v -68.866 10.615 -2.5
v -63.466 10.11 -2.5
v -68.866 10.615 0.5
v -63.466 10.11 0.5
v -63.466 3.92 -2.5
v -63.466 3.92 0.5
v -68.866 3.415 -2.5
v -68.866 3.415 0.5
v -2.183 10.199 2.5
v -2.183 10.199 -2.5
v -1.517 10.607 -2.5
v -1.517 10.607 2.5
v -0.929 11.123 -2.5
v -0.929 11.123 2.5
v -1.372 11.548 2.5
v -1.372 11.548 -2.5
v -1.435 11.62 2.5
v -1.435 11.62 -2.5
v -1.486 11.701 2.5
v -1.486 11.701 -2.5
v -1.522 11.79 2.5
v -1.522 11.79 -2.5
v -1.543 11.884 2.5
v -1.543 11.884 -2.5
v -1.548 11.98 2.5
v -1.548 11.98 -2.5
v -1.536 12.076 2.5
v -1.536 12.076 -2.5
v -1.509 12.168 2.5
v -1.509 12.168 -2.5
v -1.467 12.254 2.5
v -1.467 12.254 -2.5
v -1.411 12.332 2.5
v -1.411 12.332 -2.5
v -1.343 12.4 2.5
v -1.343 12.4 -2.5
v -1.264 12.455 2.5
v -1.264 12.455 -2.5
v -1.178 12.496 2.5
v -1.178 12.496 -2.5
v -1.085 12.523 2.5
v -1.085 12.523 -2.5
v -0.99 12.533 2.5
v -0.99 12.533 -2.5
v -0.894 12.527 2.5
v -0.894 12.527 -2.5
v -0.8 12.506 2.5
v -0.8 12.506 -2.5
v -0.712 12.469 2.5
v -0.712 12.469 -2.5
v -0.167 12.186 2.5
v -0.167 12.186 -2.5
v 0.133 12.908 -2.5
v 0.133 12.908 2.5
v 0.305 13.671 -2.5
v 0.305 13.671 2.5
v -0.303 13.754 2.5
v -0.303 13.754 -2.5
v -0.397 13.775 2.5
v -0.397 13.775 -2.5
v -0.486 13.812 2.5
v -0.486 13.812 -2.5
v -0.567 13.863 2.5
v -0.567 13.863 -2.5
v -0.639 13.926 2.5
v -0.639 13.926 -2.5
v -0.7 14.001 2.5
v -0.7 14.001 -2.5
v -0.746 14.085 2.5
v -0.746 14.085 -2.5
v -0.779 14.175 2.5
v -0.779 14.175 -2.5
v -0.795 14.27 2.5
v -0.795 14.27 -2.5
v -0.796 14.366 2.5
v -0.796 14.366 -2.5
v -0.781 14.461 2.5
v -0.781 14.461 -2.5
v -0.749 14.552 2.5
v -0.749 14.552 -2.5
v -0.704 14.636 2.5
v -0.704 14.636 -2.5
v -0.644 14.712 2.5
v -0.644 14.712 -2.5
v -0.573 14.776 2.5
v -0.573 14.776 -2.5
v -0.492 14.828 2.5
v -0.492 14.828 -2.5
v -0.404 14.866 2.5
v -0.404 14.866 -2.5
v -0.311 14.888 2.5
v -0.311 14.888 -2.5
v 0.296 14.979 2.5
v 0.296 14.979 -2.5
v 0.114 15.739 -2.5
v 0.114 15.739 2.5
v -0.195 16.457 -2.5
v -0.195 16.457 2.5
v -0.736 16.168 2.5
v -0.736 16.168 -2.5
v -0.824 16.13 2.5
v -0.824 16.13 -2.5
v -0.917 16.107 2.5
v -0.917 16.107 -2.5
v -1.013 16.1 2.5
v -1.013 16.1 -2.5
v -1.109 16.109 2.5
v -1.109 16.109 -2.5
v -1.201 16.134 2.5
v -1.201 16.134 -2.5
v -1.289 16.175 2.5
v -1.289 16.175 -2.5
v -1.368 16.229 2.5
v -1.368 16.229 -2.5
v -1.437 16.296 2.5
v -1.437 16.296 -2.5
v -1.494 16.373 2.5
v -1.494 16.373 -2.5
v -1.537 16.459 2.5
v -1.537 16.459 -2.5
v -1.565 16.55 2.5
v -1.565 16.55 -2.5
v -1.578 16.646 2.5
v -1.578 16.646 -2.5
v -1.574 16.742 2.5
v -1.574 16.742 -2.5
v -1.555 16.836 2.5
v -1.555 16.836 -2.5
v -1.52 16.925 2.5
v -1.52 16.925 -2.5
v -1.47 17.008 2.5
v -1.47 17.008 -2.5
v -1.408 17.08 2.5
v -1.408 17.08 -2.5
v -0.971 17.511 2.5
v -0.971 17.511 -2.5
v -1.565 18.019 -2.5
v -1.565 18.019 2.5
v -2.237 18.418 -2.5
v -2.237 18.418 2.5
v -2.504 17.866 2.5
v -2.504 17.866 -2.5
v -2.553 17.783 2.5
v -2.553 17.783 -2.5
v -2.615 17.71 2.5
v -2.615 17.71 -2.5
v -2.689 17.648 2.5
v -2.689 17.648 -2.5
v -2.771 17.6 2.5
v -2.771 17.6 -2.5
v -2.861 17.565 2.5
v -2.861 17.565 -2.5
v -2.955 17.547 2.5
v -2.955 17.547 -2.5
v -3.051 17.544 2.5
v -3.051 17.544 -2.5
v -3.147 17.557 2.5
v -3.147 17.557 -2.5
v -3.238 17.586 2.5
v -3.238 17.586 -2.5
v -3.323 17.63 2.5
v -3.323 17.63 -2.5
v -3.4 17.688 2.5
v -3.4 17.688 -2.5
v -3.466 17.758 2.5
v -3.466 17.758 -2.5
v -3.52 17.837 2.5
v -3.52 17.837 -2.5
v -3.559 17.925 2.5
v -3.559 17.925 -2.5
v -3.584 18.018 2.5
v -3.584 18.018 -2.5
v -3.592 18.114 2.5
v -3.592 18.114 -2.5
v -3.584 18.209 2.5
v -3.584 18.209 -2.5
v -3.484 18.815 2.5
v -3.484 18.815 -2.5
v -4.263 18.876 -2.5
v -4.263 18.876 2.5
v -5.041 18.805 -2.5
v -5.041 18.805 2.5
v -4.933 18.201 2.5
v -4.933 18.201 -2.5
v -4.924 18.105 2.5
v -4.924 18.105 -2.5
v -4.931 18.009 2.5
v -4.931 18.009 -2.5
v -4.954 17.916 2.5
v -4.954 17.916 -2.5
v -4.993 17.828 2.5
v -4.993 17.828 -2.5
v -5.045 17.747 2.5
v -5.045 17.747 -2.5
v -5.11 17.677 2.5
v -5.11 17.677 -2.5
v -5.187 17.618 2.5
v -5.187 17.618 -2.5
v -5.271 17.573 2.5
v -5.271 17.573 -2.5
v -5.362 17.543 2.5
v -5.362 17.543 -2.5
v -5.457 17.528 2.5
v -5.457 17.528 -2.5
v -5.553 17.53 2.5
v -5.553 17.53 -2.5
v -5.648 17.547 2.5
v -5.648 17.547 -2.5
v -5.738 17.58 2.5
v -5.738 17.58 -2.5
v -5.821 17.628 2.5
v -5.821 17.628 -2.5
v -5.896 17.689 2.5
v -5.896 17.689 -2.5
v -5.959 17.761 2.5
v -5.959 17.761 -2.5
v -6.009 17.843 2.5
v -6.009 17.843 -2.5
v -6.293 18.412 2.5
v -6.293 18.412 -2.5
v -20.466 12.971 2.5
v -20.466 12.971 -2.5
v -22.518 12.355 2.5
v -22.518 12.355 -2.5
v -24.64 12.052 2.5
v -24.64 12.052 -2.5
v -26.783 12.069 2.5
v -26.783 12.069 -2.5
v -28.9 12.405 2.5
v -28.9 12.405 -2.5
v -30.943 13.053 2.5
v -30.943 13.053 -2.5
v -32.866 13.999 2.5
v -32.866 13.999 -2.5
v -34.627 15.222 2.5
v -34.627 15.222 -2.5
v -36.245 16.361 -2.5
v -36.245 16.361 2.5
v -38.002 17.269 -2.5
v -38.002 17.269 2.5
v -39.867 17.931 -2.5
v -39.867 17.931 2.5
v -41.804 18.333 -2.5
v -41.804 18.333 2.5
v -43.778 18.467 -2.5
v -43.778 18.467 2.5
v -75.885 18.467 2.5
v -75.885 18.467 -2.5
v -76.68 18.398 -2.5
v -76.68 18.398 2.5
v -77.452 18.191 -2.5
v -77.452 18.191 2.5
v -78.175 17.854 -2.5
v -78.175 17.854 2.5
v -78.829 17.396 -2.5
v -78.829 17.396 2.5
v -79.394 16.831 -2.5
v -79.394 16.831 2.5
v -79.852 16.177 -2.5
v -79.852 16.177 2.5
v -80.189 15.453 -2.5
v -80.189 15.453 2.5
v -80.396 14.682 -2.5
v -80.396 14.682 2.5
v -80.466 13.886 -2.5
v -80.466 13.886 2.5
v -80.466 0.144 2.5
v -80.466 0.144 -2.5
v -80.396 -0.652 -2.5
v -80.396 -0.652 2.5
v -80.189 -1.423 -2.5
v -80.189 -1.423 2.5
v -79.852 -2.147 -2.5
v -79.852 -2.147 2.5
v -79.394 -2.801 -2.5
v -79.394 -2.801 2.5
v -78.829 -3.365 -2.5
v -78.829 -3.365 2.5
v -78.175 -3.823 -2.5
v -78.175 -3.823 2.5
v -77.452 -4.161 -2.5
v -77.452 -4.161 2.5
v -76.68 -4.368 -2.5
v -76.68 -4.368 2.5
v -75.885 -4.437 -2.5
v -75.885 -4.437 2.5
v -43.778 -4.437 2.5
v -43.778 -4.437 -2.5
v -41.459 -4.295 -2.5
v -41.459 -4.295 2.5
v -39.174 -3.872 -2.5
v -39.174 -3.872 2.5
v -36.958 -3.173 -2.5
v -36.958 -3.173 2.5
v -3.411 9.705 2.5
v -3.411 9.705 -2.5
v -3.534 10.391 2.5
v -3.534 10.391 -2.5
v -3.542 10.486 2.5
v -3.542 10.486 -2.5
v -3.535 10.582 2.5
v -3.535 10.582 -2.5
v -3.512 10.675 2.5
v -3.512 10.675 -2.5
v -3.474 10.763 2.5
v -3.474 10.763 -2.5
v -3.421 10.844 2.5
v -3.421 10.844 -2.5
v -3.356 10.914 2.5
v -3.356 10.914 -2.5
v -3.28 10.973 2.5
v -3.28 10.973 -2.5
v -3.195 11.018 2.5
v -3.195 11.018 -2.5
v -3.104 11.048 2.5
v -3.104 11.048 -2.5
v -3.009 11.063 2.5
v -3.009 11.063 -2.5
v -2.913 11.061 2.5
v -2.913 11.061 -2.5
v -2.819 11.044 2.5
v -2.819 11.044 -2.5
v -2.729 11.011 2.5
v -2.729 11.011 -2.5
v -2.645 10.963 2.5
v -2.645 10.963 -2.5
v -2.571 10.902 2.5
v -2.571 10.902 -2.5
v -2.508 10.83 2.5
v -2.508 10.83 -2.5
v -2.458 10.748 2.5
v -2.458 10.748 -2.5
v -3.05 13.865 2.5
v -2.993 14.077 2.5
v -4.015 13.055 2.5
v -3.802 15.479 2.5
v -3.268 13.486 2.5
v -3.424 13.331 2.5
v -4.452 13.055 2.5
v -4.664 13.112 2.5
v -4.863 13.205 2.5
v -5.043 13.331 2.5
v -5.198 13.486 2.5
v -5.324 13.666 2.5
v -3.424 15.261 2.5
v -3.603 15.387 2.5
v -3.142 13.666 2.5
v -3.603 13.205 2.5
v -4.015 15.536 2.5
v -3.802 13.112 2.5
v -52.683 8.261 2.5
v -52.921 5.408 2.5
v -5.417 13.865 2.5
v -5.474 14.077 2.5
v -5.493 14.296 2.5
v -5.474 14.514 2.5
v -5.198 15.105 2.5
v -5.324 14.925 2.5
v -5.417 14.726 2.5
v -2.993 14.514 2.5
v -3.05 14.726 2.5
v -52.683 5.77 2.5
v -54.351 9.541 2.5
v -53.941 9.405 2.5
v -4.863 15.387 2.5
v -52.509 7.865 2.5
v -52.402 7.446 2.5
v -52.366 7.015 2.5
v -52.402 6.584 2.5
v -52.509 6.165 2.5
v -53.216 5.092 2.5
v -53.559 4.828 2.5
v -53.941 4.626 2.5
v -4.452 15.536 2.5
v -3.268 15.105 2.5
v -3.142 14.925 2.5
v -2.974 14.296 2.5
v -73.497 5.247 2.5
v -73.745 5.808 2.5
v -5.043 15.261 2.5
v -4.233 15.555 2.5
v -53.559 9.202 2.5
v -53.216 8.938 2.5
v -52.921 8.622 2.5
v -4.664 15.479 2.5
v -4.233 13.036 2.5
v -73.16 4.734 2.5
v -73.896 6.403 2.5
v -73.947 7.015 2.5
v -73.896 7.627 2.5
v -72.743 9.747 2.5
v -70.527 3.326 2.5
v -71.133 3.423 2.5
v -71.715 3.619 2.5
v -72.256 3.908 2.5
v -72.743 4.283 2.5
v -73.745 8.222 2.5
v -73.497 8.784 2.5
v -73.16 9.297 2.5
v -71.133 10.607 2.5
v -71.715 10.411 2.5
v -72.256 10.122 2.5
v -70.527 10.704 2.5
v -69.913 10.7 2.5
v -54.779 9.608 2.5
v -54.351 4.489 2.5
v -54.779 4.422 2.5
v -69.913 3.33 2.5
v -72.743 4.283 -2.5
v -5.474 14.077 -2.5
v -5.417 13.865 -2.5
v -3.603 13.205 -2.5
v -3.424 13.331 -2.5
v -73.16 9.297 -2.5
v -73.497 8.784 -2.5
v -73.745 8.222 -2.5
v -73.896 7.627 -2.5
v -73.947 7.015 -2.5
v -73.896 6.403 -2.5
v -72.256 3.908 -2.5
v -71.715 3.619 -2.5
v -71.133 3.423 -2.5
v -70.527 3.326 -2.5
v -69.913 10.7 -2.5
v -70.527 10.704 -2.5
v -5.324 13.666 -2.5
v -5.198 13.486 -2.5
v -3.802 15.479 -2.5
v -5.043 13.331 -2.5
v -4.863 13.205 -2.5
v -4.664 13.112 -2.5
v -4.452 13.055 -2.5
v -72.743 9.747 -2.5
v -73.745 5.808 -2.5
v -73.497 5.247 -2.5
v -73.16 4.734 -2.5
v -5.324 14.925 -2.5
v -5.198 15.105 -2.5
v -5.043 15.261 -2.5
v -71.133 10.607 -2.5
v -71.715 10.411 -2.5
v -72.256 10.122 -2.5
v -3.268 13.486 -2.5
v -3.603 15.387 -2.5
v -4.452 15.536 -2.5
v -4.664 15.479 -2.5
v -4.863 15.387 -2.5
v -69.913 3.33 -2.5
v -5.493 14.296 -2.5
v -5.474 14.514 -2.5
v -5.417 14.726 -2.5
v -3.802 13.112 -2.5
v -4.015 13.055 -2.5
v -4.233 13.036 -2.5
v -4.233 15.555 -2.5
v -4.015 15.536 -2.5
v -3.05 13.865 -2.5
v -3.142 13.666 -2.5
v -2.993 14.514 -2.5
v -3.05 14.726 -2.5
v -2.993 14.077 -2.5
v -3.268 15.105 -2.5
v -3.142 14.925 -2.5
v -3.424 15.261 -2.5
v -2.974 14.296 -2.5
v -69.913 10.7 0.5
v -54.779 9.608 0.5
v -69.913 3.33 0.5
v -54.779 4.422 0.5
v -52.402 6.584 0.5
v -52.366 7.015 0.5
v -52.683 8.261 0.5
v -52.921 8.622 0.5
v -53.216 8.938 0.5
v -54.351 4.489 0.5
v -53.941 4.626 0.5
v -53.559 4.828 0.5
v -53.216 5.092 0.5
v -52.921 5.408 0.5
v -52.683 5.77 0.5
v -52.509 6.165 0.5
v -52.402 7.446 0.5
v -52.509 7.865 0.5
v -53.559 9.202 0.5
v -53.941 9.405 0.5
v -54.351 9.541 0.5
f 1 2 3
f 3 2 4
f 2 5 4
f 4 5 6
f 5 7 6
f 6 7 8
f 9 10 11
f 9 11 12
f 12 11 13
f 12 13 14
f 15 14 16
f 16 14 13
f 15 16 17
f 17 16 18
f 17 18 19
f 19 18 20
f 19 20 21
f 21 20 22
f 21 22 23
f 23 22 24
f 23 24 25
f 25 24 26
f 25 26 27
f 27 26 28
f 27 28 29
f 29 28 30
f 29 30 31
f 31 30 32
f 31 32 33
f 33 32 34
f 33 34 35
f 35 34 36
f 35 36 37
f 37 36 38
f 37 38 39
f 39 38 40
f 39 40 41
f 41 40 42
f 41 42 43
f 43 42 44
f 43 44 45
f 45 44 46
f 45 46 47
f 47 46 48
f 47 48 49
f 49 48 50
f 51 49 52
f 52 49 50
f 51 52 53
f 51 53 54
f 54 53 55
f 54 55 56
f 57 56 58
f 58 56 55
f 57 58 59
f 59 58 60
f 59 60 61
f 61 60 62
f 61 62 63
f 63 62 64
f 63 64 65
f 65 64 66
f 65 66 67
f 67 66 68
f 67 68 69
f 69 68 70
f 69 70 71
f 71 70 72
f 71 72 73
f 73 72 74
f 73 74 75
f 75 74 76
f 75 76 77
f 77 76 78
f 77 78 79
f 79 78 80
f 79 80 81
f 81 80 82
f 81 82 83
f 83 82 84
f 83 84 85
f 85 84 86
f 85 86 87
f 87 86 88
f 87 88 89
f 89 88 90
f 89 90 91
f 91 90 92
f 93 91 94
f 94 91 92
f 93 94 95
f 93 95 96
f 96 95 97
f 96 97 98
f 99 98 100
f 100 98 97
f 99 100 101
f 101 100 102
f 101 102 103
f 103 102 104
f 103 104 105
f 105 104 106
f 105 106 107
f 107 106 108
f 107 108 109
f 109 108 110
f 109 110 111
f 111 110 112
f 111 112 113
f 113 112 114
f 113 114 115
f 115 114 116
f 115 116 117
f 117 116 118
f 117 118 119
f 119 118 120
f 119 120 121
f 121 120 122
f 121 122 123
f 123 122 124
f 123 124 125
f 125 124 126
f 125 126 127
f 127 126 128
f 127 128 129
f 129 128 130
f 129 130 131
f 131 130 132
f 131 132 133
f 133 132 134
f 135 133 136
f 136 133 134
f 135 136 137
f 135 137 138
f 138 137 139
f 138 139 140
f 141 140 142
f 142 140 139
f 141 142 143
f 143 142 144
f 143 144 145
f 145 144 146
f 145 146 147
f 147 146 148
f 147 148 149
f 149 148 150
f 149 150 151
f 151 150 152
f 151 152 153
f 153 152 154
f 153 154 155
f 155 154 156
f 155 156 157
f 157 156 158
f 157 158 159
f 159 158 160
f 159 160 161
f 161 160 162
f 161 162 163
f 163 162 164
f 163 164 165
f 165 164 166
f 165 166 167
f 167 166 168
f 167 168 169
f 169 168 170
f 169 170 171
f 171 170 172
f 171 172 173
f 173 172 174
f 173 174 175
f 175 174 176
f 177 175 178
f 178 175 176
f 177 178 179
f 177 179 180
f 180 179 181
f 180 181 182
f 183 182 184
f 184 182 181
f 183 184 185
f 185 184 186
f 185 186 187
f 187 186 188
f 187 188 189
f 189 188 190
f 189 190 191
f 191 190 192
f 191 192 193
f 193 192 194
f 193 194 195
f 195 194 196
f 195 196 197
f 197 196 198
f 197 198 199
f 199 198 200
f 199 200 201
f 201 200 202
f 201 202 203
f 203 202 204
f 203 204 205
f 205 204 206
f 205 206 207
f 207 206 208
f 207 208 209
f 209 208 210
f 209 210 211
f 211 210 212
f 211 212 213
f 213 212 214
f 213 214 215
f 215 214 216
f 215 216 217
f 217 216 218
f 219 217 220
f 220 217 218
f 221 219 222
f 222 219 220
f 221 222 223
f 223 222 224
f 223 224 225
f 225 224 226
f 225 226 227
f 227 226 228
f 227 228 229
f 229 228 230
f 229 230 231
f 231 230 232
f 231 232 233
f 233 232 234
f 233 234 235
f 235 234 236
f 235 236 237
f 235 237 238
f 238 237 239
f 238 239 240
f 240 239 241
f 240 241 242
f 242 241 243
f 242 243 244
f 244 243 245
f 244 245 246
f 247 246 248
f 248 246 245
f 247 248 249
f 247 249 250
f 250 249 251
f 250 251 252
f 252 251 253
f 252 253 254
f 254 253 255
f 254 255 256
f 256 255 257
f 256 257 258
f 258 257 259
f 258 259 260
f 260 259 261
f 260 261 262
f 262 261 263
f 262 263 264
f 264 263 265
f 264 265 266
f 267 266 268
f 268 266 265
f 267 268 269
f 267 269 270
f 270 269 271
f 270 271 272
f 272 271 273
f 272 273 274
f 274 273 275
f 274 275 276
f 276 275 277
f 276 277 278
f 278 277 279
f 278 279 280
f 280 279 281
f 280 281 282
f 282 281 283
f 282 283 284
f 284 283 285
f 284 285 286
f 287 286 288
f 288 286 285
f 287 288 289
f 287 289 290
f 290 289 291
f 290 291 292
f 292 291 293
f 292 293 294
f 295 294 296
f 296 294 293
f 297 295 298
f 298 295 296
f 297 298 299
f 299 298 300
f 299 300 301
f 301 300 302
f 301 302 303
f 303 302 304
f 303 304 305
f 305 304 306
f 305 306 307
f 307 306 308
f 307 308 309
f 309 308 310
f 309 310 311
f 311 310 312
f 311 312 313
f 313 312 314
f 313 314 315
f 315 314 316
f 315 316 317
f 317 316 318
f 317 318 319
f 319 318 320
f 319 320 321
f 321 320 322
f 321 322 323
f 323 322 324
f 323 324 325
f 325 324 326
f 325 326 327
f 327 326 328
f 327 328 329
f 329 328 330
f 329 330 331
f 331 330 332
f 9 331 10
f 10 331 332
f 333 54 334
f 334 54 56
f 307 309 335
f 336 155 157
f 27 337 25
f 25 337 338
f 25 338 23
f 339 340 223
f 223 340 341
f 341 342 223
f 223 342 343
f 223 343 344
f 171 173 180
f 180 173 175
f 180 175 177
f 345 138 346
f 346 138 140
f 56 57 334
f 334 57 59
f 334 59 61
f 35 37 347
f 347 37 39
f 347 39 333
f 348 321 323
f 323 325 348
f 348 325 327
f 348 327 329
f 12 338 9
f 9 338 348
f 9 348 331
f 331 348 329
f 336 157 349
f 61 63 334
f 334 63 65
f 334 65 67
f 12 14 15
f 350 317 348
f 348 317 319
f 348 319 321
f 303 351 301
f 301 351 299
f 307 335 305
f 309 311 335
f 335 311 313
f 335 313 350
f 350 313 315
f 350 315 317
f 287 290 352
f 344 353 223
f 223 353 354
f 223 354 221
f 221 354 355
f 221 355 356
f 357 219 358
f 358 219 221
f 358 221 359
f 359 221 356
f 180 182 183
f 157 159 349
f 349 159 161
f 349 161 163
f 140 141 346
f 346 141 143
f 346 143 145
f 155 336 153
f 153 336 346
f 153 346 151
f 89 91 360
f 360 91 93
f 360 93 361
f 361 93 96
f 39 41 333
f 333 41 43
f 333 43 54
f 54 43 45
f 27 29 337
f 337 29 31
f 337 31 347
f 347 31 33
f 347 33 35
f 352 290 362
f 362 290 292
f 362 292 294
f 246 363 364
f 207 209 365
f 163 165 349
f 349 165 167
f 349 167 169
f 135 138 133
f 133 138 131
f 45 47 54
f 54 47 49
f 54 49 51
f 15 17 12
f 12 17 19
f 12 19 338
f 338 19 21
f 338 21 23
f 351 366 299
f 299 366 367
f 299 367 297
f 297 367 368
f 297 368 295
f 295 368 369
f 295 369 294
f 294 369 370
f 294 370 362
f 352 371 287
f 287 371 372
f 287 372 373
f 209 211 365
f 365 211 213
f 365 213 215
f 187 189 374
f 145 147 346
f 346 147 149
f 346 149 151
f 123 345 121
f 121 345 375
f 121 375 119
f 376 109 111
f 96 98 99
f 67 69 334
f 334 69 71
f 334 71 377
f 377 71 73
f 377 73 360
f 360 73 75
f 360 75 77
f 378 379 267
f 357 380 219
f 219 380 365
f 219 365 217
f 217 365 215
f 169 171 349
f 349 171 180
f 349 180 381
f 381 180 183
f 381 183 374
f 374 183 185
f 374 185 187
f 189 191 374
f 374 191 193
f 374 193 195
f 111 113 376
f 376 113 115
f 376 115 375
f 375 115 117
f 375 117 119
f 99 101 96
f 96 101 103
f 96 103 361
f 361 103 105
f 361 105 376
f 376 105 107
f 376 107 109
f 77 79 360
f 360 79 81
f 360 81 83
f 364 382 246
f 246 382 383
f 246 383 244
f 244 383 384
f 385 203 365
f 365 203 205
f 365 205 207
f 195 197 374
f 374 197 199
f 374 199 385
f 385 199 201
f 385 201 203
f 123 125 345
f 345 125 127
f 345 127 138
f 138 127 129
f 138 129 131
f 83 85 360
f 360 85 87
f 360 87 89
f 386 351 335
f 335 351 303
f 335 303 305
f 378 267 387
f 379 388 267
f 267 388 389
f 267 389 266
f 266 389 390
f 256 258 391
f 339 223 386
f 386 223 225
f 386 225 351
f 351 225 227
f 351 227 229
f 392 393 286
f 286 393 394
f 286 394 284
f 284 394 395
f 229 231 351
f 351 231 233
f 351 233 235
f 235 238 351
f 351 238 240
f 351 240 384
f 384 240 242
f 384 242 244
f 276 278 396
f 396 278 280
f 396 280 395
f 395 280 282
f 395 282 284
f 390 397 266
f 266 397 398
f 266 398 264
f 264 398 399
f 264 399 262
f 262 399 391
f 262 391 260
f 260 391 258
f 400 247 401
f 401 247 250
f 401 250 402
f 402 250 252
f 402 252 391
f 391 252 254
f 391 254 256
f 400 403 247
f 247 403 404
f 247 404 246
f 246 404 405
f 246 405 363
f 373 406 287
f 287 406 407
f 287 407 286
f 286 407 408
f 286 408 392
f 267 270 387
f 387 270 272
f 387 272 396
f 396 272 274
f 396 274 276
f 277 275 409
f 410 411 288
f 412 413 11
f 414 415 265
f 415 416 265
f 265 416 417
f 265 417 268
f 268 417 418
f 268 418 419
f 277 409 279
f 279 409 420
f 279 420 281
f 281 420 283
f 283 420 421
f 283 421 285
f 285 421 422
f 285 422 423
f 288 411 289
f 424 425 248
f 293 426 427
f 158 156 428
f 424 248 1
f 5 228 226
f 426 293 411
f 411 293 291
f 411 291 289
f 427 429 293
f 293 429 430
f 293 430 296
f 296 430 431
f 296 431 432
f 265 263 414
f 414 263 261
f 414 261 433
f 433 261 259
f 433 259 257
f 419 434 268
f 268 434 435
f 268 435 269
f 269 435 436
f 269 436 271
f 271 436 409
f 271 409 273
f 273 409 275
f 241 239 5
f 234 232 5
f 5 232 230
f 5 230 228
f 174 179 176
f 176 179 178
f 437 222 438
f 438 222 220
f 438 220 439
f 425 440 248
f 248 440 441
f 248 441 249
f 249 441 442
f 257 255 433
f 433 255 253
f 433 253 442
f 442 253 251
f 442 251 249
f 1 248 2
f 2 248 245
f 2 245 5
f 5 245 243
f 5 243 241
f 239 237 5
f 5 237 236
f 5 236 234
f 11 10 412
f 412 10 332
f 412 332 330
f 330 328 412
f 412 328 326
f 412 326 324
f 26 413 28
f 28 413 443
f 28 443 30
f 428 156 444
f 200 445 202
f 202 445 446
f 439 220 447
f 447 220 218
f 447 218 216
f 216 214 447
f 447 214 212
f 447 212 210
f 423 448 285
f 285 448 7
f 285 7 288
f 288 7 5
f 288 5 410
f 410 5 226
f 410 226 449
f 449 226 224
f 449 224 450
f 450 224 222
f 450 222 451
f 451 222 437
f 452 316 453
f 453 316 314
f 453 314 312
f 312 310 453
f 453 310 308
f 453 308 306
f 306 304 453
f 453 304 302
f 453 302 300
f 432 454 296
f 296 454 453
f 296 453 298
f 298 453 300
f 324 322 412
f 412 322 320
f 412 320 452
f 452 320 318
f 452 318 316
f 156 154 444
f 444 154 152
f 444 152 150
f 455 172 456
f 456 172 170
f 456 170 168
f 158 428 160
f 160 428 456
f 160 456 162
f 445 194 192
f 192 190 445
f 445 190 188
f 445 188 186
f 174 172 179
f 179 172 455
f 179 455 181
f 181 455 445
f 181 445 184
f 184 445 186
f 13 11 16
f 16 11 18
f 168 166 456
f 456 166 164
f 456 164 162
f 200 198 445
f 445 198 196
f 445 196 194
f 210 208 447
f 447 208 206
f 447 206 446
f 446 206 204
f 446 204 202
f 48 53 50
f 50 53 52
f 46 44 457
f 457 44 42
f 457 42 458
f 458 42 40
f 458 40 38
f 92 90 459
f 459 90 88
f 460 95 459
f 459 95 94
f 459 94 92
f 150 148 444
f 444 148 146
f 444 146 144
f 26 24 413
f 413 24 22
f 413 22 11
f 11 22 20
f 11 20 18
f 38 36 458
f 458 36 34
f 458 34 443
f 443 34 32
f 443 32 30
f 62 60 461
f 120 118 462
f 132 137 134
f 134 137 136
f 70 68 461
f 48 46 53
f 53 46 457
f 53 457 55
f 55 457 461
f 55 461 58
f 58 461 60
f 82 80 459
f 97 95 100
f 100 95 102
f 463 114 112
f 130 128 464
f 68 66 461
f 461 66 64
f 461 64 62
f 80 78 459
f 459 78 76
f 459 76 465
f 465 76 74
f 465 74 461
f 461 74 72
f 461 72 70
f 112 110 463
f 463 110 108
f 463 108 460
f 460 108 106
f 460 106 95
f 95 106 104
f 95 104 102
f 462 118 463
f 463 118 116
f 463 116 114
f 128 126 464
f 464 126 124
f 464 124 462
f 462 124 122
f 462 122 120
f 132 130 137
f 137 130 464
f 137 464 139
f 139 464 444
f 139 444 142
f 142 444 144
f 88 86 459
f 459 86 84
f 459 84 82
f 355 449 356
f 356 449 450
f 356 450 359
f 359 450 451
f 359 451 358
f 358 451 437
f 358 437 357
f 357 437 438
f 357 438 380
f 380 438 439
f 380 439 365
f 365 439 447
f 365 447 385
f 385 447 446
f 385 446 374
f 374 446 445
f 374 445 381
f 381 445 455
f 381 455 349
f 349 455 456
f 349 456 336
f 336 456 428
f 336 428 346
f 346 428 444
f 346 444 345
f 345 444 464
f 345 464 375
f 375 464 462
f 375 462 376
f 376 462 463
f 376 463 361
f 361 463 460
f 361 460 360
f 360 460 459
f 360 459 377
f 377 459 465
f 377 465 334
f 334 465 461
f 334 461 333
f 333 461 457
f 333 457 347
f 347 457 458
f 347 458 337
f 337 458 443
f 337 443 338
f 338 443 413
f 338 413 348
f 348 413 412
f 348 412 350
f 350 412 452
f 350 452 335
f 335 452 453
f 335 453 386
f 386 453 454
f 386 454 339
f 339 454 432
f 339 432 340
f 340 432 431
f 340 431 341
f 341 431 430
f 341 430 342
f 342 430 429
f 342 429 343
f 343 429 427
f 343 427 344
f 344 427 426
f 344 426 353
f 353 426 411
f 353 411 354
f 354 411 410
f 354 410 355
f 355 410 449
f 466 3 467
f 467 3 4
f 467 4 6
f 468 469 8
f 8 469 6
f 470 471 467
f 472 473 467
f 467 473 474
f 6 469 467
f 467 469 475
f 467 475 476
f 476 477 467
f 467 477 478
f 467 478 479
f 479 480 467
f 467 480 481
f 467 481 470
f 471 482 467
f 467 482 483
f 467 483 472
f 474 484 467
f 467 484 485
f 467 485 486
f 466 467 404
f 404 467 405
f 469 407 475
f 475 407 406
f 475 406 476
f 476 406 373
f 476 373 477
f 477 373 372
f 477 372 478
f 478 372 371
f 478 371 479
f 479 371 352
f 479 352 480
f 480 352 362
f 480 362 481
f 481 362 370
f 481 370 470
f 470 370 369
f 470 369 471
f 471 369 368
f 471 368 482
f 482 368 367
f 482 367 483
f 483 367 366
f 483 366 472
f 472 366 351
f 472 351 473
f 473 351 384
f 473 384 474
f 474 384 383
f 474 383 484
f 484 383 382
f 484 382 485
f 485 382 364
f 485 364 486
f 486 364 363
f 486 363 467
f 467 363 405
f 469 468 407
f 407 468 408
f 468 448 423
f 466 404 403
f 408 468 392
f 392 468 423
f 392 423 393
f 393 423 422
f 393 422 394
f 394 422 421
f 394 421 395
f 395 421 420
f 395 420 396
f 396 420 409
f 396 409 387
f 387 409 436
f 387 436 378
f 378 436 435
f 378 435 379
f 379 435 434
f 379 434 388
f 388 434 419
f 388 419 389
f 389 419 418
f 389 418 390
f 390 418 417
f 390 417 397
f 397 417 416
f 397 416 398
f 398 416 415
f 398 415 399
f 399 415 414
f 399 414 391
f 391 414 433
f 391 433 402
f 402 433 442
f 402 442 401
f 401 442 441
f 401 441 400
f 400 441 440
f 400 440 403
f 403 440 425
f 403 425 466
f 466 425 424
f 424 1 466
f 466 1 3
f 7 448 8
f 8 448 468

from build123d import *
from build123d.topology import SkipClean

# Parameters (mm, degrees)
CROQUIS1_R              = 1.717841821
CROQUIS1_R_2            = 1.259750669
CROQUIS1_W              = 27.485469141
CROQUIS1_H              = 14.887962451
SALIENTE_EXTRUIR1_DEPTH = 5
SALIENTE_EXTRUIR2_START = -5
SALIENTE_EXTRUIR2_DEPTH = 5
CORTAR_EXTRUIR1_DEPTH   = 5
CORTAR_EXTRUIR2_DEPTH   = 2
CUT_EXTRUDE2_DEPTH      = 83.704538261


with BuildPart() as part:
    # Croquis1 → Saliente-Extruir1 (new body)
    with BuildSketch(Plane(origin=(0, 0, -2.5), x_dir=(-1, 0, 0), z_dir=(0, 0, -1))):
        with BuildLine():
            Line((2.183126414, 10.199004786), (2.457799007, 10.747834714))
            ThreePointArc((2.457799007, 10.747834714), (3.150356623, 11.03498533), (3.533498829, 10.390552574))
            Line((3.533498829, 10.390552574), (3.410556906, 9.704532228))
            Line((3.410556906, 9.704532228), (36.957948904, -3.17310503))
            ThreePointArc((36.957948904, -3.17310503), (40.309989238, -4.118478177), (43.778179918, -4.437160132))
            Line((43.778179918, -4.437160132), (75.884737747, -4.437160132))
            ThreePointArc((75.884737747, -4.437160132), (79.123931349, -3.095442211), (80.46564927, 0.143751392))
            Line((80.46564927, 0.143751392), (80.46564927, 13.886485962))
            ThreePointArc((80.46564927, 13.886485962), (79.123931349, 17.125679564), (75.884737747, 18.467397485))
            Line((75.884737747, 18.467397485), (43.778179918, 18.467397485))
            ThreePointArc((43.778179918, 18.467397485), (38.923372817, 17.631925595), (34.62713443, 15.221634951))
            ThreePointArc((34.62713443, 15.221634951), (27.84817952, 12.197288027), (20.46564927, 12.971336544))
            Line((20.46564927, 12.971336544), (6.293279019, 18.411599775))
            Line((6.293279019, 18.411599775), (6.008822105, 17.843219559))
            ThreePointArc((6.008822105, 17.843219559), (5.316264489, 17.556068943), (4.933122282, 18.200501699))
            Line((4.933122282, 18.200501699), (5.041383533, 18.804603367))
            ThreePointArc((5.041383533, 18.804603367), (4.263160644, 18.876341405), (3.484068945, 18.814751339))
            Line((3.484068945, 18.814751339), (3.584448287, 18.209290101))
            ThreePointArc((3.584448287, 18.209290101), (3.192940304, 17.56990522), (2.504183677, 17.866056933))
            Line((2.504183677, 17.866056933), (2.236686818, 18.418419815))
            ThreePointArc((2.236686818, 18.418419815), (1.564924714, 18.019029169), (0.970828021, 17.511263148))
            Line((0.970828021, 17.511263148), (1.407917802, 17.080436215))
            ThreePointArc((1.407917802, 17.080436215), (1.467002194, 16.333040361), (0.735712768, 16.167791142))
            Line((0.735712768, 16.167791142), (0.194632507, 16.457431391))
            ThreePointArc((0.194632507, 16.457431391), (-0.114078519, 15.739465714), (-0.296255461, 14.9794731))
            Line((-0.296255461, 14.9794731), (0.310591317, 14.887841716))
            ThreePointArc((0.310591317, 14.887841716), (0.797699855, 14.317914702), (0.303205335, 13.754384137))
            Line((0.303205335, 13.754384137), (-0.304784058, 13.670669023))
            ThreePointArc((-0.304784058, 13.670669023), (-0.132526888, 12.9083668), (0.16680132, 12.18643894))
            Line((0.16680132, 12.18643894), (0.711610253, 12.469003179))
            ThreePointArc((0.711610253, 12.469003179), (1.440684032, 12.294237755), (1.371864517, 11.547675365))
            Line((1.371864517, 11.547675365), (0.929197275, 11.122581216))
            ThreePointArc((0.929197275, 11.122581216), (1.516626257, 10.607115987), (2.183126414, 10.199004786))
        make_face()
        with Locations(Location((46.05155145, 7.015118677, 0), (0, 0, 180))):
            Circle(CROQUIS1_R, mode=Mode.SUBTRACT)
        with Locations(Location((77.659840962, 7.015118677, 0), (0, 0, 180))):
            Circle(CROQUIS1_R, mode=Mode.SUBTRACT)
        with Locations(Location((4.233310556, 14.295527136, 0), (0, 0, 180))):
            Circle(CROQUIS1_R_2, mode=Mode.SUBTRACT)
        with Locations((61.855696206, 7.015118677)):
            Rectangle(CROQUIS1_W, CROQUIS1_H, mode=Mode.SUBTRACT)
    extrude(amount=-SALIENTE_EXTRUIR1_DEPTH)

    # Croquis2 → Saliente-Extruir2 (add)
    with BuildSketch(Plane.XY.offset(2.5).offset(SALIENTE_EXTRUIR2_START)):
        with BuildLine():
            Line((-43.778179918, -4.437160132), (-75.884737747, -4.437160132))
            ThreePointArc((-75.884737747, -4.437160132), (-79.123931349, -3.095442211), (-80.46564927, 0.143751392))
            Line((-80.46564927, 0.143751392), (-80.46564927, 13.886485962))
            ThreePointArc((-80.46564927, 13.886485962), (-79.123931349, 17.125679564), (-75.884737747, 18.467397485))
            Line((-75.884737747, 18.467397485), (-43.778179918, 18.467397485))
            Line((-43.778179918, 18.467397485), (-43.778179918, -4.437160132))
        make_face()
    extrude(amount=SALIENTE_EXTRUIR2_DEPTH)

    # Croquis3 → Cortar-Extruir1 (cut)
    with BuildSketch(Plane.XY.offset(2.5)):
        with BuildLine():
            Line((-68.86564927, 10.615118677), (-63.46564927, 10.110118677))
            Line((-63.46564927, 10.110118677), (-63.46564927, 3.920118677))
            Line((-63.46564927, 3.920118677), (-68.86564927, 3.415118677))
            ThreePointArc((-68.86564927, 3.415118677), (-72.46564927, 7.015118677), (-68.86564927, 10.615118677))
        make_face()
    extrude(amount=-CORTAR_EXTRUIR1_DEPTH, mode=Mode.SUBTRACT)

    # Croquis4 → Cortar-Extruir2 (cut)
    with BuildSketch(Plane.XY.offset(2.5)):
        with BuildLine():
            Line((-54.77859891, 9.608381518), (-69.913267682, 10.700035319))
            ThreePointArc((-69.913267682, 10.700035319), (-73.947018097, 7.015118677), (-69.913267682, 3.330202034))
            Line((-69.913267682, 3.330202034), (-54.77859891, 4.421855836))
            ThreePointArc((-54.77859891, 4.421855836), (-52.36564927, 7.015118677), (-54.77859891, 9.608381518))
        make_face()
    extrude(amount=-CORTAR_EXTRUIR2_DEPTH, mode=Mode.SUBTRACT)

    # Sketch2 → Cut-Extrude2 (cut, through all)
    with SkipClean():  # the faces are left unmerged after this step: merging them gives an invalid solid
        with BuildSketch(Plane.XY.offset(0.5)):
            with BuildLine():
                Line((-69.913267682, 10.700035319), (-68.86564927, 10.615118677))
                ThreePointArc((-68.86564927, 10.615118677), (-72.46564927, 7.015118677), (-68.86564927, 3.415118677))
                Line((-68.86564927, 3.415118677), (-69.913267682, 3.330202034))
                ThreePointArc((-69.913267682, 3.330202034), (-73.947018097, 7.015118677), (-69.913267682, 10.700035319))
            make_face()
        extrude(amount=-CUT_EXTRUDE2_DEPTH, mode=Mode.SUBTRACT)


solid = part.part
